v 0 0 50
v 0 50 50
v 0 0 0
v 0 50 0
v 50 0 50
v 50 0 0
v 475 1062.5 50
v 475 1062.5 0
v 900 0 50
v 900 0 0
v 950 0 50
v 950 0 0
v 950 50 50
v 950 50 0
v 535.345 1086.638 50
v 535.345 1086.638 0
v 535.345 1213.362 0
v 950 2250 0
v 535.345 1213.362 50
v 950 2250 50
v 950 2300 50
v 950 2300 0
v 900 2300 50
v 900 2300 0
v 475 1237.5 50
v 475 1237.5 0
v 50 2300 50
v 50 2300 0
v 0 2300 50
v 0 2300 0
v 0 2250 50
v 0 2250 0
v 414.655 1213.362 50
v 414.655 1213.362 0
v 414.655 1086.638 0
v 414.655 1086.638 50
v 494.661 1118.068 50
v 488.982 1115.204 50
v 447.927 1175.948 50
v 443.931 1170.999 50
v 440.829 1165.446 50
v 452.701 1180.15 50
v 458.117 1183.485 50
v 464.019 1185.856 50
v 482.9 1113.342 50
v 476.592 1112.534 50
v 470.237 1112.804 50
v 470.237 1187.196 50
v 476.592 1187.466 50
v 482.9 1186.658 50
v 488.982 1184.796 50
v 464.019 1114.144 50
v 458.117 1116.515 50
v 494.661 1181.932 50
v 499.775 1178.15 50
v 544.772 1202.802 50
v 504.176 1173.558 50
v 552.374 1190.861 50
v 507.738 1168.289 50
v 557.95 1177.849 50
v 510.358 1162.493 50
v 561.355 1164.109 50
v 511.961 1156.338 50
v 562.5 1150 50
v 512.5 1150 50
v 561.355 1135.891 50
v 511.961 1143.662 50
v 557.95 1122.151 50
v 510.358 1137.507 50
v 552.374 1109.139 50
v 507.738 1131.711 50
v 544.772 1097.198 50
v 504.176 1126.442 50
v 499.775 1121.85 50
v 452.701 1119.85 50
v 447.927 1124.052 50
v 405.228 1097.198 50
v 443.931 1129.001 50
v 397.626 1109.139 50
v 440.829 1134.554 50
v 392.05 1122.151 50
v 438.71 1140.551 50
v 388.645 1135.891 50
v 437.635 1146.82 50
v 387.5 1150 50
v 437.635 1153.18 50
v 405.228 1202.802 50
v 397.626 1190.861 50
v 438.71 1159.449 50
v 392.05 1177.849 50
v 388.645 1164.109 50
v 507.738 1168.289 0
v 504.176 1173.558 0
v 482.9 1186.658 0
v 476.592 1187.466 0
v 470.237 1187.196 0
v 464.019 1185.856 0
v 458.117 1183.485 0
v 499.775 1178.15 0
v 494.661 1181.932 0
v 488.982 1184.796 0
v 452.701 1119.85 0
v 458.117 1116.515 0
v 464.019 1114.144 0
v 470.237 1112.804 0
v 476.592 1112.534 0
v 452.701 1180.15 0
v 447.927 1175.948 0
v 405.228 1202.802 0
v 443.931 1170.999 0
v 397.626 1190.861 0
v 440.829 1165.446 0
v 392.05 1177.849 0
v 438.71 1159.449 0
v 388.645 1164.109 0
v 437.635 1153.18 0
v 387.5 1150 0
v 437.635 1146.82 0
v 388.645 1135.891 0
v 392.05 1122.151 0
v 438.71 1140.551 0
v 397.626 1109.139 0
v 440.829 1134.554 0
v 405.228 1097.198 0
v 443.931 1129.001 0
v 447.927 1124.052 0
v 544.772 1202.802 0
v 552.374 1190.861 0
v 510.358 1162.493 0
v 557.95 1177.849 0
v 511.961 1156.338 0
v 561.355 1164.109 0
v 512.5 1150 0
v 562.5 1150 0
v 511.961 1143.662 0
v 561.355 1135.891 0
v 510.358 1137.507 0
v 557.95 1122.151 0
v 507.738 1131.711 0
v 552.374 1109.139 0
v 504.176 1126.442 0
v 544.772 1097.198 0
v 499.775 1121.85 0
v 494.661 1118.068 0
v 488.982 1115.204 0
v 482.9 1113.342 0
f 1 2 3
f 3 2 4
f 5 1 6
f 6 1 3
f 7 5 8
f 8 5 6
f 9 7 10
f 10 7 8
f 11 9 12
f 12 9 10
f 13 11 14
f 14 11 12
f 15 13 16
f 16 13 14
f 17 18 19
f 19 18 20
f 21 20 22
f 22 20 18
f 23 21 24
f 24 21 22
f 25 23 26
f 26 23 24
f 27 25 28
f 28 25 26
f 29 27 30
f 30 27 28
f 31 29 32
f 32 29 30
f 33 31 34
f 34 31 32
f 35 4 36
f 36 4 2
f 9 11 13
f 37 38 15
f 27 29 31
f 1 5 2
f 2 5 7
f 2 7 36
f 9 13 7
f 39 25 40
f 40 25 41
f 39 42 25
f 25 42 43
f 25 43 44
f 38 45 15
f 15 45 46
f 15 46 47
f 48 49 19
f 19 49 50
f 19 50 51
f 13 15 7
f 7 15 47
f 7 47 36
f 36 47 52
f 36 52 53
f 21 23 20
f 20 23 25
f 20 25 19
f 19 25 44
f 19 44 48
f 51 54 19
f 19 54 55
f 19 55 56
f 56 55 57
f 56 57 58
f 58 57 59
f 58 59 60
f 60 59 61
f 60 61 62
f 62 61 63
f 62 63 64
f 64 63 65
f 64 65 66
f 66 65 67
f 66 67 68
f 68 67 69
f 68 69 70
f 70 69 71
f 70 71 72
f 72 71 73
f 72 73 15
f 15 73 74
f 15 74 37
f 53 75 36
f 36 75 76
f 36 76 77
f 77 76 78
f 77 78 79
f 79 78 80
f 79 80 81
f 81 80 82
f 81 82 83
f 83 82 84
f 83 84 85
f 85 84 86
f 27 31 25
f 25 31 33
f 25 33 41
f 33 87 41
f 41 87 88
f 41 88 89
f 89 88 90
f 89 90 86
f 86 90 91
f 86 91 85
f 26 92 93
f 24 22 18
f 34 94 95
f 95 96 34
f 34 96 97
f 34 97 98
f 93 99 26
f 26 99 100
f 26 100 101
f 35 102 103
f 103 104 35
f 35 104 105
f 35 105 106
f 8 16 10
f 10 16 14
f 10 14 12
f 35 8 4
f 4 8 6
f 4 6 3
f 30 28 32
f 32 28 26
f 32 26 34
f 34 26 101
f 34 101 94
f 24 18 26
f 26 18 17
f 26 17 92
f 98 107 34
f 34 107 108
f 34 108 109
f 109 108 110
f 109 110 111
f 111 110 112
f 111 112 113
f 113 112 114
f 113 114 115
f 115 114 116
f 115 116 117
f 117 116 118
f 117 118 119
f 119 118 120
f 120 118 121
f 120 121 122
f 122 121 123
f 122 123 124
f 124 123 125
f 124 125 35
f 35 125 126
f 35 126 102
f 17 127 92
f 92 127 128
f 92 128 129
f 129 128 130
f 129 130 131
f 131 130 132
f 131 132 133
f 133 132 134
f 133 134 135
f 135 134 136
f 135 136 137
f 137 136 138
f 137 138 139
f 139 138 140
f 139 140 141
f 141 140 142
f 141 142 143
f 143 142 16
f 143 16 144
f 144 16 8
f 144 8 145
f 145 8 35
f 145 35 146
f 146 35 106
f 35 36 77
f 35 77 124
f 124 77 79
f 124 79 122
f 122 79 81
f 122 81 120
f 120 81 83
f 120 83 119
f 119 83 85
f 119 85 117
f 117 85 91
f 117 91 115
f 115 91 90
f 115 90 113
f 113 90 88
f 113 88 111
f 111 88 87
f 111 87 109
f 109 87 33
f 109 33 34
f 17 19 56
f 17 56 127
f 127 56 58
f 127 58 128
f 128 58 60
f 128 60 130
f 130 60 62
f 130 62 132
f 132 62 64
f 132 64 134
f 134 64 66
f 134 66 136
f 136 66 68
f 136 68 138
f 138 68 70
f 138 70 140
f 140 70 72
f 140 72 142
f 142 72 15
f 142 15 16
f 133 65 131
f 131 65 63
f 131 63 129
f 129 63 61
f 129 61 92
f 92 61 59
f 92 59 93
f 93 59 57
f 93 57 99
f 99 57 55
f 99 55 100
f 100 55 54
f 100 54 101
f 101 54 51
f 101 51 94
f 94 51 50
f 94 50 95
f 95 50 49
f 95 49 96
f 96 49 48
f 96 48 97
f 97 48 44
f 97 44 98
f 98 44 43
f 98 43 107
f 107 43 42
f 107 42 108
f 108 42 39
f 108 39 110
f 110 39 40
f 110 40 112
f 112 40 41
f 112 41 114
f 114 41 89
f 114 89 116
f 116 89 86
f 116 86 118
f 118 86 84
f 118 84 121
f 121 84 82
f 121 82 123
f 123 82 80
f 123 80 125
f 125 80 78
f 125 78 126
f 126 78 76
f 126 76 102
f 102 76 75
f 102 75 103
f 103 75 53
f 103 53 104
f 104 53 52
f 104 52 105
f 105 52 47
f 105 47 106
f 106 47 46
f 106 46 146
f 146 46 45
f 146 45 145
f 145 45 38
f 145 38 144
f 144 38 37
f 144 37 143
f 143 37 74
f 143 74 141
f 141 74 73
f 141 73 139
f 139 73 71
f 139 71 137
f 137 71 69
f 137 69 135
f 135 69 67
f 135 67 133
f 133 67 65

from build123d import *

# Parameters (mm, degrees)
AUFSATZ_LINEAR_AUSTRAGEN1_DEPTH = 50
SKIZZE2_R                       = 87.5
SKIZZE2_R_2                     = 35
AUFSATZ_LINEAR_AUSTRAGEN2_DEPTH = 50
SCHNITT_LINEAR_AUSTRAGEN1_DEPTH = 50


with BuildPart() as part:
    # Skizze1 → Aufsatz-Linear austragen1 (new body)
    with BuildSketch(Plane.XY):
        Polygon((0, 2300), (50, 2300), (475, 1237.5), (900, 2300), (950, 2300), (950, 2250), (510, 1150), (950, 50), (950, 0), (900, 0), (475, 1062.5), (50, 0), (0, 0), (0, 50), (440, 1150), (0, 2250), align=None)
    extrude(amount=AUFSATZ_LINEAR_AUSTRAGEN1_DEPTH)

    # Skizze2 → Aufsatz-Linear austragen2 (add)
    with BuildSketch(Plane.XY.offset(50)):
        with Locations((475, 1150)):
            Circle(SKIZZE2_R)
        with Locations((475, 1150)):
            Circle(SKIZZE2_R_2, mode=Mode.SUBTRACT)
    extrude(amount=-AUFSATZ_LINEAR_AUSTRAGEN2_DEPTH)

    # Skizze4 → Schnitt-Linear austragen1 (cut)
    with BuildSketch(Plane.XY.offset(50)):
        with BuildLine():
            ThreePointArc((512.5, 1150), (501.516504294, 1176.516504294), (475, 1187.5))
            Line((475, 1187.5), (475, 1112.5))
            ThreePointArc((475, 1112.5), (501.516504294, 1123.483495706), (512.5, 1150))
        make_face()
        with BuildLine():
            Line((475, 1112.5), (475, 1187.5))
            ThreePointArc((475, 1187.5), (437.5, 1150), (475, 1112.5))
        make_face()
    extrude(amount=-SCHNITT_LINEAR_AUSTRAGEN1_DEPTH, mode=Mode.SUBTRACT)


solid = part.part
